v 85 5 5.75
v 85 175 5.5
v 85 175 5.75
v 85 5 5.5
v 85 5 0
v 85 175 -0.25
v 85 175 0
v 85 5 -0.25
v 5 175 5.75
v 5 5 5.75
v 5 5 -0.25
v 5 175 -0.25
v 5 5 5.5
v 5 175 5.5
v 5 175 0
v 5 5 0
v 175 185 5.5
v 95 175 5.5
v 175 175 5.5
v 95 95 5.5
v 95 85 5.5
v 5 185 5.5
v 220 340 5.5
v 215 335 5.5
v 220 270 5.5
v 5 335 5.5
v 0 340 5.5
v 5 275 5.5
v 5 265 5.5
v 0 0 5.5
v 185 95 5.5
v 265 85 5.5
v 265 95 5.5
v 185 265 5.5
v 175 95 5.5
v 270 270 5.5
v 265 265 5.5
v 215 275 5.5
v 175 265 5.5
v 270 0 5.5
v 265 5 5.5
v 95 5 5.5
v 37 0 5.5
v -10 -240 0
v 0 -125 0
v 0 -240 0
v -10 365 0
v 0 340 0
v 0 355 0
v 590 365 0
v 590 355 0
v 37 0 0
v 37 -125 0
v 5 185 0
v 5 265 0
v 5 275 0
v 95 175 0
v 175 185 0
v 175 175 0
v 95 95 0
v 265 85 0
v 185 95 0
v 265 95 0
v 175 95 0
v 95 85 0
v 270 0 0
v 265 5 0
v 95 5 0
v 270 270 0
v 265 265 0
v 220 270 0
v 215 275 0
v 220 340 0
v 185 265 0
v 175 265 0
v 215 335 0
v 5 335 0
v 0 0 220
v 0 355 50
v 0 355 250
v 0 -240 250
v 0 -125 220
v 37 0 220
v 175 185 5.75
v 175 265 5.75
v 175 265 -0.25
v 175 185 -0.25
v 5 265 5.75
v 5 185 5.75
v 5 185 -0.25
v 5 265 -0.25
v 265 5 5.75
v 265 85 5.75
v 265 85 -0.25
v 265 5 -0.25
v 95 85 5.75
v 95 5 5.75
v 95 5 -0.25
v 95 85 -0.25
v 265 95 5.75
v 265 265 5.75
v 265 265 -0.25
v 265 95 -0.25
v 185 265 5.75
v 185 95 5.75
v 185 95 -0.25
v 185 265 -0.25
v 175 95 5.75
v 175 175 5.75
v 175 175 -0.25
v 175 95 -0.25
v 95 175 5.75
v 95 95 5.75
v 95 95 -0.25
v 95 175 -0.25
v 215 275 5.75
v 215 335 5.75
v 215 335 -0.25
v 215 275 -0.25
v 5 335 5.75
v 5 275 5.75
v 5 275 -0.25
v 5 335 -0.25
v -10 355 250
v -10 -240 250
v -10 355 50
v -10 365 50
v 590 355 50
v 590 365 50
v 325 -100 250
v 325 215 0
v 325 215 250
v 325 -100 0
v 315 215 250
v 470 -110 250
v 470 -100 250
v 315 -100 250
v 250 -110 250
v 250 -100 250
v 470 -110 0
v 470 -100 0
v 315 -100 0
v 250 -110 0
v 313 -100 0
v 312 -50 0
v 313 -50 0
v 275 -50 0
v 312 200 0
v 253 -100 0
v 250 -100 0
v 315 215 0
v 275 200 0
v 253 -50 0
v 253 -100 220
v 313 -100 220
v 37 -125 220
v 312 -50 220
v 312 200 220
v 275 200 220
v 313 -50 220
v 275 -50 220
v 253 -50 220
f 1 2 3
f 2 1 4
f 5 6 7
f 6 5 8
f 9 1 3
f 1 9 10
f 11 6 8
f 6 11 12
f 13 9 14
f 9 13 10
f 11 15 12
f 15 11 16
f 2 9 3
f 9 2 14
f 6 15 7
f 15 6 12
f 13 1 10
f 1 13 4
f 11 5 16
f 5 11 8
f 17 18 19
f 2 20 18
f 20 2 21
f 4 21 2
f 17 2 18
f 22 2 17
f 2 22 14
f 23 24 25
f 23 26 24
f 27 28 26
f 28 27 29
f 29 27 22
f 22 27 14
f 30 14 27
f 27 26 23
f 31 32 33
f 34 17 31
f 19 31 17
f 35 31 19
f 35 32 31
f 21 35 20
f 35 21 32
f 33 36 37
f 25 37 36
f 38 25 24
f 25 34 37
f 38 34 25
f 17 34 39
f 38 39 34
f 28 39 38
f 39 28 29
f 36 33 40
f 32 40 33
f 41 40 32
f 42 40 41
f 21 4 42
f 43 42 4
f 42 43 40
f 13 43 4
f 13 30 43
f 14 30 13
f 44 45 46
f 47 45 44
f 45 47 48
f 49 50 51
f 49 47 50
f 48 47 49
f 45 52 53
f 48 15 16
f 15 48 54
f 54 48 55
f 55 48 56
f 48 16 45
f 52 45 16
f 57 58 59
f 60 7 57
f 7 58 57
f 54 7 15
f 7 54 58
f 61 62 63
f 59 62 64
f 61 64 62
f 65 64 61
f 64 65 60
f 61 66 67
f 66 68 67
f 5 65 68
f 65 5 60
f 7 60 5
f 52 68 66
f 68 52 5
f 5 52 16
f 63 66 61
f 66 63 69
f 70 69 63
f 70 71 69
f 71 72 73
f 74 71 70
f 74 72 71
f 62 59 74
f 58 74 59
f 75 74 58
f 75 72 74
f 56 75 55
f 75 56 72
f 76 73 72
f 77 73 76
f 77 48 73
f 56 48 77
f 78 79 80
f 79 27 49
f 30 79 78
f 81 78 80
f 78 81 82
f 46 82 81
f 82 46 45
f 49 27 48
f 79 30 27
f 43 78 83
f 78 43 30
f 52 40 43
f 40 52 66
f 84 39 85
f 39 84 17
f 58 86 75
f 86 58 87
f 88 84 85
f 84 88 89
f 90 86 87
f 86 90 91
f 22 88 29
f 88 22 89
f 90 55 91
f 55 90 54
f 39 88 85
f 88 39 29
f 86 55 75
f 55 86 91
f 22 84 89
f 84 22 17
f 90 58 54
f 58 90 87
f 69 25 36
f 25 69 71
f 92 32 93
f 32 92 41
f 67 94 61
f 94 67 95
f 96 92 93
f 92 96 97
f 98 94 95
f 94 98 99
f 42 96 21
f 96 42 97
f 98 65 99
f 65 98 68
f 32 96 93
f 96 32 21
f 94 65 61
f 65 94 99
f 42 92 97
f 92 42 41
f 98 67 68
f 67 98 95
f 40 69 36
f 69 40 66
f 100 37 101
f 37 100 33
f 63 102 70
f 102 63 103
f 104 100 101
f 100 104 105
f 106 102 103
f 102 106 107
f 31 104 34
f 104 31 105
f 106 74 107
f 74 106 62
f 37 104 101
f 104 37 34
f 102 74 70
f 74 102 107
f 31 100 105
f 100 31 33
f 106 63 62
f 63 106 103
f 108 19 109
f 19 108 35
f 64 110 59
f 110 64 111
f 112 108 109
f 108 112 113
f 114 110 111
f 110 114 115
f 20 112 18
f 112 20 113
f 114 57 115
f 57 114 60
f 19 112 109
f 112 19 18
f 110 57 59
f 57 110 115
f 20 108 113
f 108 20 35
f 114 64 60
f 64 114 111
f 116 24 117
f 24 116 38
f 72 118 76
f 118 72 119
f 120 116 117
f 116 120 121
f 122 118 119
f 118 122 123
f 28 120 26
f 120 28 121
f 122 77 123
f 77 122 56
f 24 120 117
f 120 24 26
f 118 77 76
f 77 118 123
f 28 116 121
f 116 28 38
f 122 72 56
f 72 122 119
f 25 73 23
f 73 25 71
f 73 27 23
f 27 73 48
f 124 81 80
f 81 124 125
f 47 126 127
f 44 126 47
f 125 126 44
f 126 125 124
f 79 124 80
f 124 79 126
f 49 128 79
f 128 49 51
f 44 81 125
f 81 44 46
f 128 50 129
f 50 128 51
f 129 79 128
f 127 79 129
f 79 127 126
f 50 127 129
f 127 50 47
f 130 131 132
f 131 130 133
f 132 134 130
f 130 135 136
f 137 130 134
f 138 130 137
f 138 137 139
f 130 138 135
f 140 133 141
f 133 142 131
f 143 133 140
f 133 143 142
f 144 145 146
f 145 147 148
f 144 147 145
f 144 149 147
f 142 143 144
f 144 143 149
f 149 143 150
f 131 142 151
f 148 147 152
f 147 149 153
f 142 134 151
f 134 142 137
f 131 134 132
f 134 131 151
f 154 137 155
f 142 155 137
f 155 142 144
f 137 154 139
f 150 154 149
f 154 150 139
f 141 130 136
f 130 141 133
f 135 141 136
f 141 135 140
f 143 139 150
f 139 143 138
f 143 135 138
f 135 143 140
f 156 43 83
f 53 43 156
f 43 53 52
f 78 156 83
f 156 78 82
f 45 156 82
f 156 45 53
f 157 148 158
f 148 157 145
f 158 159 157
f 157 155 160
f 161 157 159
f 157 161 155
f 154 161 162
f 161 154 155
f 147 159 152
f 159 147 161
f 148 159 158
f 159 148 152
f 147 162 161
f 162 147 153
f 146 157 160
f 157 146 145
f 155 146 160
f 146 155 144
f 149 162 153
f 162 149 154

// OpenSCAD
translate([45,90,2.75]){
  cube(size=[80,170,6], center=true);
  color([0,0,0])
  cube(size=[90,180,5.5], center=true);
}

//translate([150,-20,2.75]){
//  cube(size=[210,30,6], center=true);
//  color([0,0,0])
//  cube(size=[220,40,5.5], center=true);
//}


translate([90,225,2.75]){
  cube(size=[170,80,6], center=true);
  color([0,0,0])
  cube(size=[180,90,5.5], center=true);
}

translate([180,45,2.75]){
  cube(size=[170,80,6], center=true);
  color([0,0,0])
  cube(size=[180,90,5.5], center=true);
}

translate([225,180,2.75]){
  cube(size=[80,170,6], center=true);
  color([0,0,0])
  cube(size=[90,180,5.5], center=true);
}

translate([135,135,2.75]){
  cube(size=[80,80,6], center=true);
  color([0,0,0])
  cube(size=[90,90,5.5], center=true);
}


translate([110,305,2.75]){
  cube(size=[210,60,6], center=true);
  color([0,0,0])
  cube(size=[220,70,5.5], center=true);
}




translate([-10,-240,0]){
  color(c=[0,1.0,0, 0.1])
  cube(size=[10,595,250], center=false);
}
translate([-10,355,0]){
  color(c=[0,1.0,0, 0.1])
  cube(size=[600,10,50], center=false);
}
translate([315,-100,0]){
  color(c=[0,1.0,0, 0.1])
  cube(size=[10,315,250], center=false);
}

translate([250,-110,0]){
  color(c=[0,1.0,0, 0.1])
  cube(size=[220,10,250], center=false);
}

/*translate([-10,-240,0]){
  color(c=[0,255,0])
  cube(size=[500,10,250], center=false);
}
*/

translate([0,-125,0]){
  color(c=[1.0,0,0, 0.1])
  cube(size=[37,125,220], center=false);
}

translate([275,-50,0]){
  color(c=[1.0,0,0, 0.1])
  cube(size=[37,250,220], center=false);
}
translate([253,-100,0]){
  color(c=[1.0,0,0, 0.1])
  cube(size=[60,50,220], center=false);
}
